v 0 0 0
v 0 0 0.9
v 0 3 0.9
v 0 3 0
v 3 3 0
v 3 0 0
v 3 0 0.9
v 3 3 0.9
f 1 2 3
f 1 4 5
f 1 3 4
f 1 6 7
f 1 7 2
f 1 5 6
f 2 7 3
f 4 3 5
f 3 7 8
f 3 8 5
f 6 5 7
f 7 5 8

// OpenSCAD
/* Warning, this is a very basic generator with a lot of approximation 
input data : [VDFN, 4BW, 3x3x0.9mm, 10, , C, C04-00580C]
generated by com.zoubworld.electronics.cad.model3d.Basic
Date : Sun Feb 15 10:50:49 CET 2026
*/

//body
color("black")
translate([0,0,0])
cube([3.0,3.0,0.9], center=false);
